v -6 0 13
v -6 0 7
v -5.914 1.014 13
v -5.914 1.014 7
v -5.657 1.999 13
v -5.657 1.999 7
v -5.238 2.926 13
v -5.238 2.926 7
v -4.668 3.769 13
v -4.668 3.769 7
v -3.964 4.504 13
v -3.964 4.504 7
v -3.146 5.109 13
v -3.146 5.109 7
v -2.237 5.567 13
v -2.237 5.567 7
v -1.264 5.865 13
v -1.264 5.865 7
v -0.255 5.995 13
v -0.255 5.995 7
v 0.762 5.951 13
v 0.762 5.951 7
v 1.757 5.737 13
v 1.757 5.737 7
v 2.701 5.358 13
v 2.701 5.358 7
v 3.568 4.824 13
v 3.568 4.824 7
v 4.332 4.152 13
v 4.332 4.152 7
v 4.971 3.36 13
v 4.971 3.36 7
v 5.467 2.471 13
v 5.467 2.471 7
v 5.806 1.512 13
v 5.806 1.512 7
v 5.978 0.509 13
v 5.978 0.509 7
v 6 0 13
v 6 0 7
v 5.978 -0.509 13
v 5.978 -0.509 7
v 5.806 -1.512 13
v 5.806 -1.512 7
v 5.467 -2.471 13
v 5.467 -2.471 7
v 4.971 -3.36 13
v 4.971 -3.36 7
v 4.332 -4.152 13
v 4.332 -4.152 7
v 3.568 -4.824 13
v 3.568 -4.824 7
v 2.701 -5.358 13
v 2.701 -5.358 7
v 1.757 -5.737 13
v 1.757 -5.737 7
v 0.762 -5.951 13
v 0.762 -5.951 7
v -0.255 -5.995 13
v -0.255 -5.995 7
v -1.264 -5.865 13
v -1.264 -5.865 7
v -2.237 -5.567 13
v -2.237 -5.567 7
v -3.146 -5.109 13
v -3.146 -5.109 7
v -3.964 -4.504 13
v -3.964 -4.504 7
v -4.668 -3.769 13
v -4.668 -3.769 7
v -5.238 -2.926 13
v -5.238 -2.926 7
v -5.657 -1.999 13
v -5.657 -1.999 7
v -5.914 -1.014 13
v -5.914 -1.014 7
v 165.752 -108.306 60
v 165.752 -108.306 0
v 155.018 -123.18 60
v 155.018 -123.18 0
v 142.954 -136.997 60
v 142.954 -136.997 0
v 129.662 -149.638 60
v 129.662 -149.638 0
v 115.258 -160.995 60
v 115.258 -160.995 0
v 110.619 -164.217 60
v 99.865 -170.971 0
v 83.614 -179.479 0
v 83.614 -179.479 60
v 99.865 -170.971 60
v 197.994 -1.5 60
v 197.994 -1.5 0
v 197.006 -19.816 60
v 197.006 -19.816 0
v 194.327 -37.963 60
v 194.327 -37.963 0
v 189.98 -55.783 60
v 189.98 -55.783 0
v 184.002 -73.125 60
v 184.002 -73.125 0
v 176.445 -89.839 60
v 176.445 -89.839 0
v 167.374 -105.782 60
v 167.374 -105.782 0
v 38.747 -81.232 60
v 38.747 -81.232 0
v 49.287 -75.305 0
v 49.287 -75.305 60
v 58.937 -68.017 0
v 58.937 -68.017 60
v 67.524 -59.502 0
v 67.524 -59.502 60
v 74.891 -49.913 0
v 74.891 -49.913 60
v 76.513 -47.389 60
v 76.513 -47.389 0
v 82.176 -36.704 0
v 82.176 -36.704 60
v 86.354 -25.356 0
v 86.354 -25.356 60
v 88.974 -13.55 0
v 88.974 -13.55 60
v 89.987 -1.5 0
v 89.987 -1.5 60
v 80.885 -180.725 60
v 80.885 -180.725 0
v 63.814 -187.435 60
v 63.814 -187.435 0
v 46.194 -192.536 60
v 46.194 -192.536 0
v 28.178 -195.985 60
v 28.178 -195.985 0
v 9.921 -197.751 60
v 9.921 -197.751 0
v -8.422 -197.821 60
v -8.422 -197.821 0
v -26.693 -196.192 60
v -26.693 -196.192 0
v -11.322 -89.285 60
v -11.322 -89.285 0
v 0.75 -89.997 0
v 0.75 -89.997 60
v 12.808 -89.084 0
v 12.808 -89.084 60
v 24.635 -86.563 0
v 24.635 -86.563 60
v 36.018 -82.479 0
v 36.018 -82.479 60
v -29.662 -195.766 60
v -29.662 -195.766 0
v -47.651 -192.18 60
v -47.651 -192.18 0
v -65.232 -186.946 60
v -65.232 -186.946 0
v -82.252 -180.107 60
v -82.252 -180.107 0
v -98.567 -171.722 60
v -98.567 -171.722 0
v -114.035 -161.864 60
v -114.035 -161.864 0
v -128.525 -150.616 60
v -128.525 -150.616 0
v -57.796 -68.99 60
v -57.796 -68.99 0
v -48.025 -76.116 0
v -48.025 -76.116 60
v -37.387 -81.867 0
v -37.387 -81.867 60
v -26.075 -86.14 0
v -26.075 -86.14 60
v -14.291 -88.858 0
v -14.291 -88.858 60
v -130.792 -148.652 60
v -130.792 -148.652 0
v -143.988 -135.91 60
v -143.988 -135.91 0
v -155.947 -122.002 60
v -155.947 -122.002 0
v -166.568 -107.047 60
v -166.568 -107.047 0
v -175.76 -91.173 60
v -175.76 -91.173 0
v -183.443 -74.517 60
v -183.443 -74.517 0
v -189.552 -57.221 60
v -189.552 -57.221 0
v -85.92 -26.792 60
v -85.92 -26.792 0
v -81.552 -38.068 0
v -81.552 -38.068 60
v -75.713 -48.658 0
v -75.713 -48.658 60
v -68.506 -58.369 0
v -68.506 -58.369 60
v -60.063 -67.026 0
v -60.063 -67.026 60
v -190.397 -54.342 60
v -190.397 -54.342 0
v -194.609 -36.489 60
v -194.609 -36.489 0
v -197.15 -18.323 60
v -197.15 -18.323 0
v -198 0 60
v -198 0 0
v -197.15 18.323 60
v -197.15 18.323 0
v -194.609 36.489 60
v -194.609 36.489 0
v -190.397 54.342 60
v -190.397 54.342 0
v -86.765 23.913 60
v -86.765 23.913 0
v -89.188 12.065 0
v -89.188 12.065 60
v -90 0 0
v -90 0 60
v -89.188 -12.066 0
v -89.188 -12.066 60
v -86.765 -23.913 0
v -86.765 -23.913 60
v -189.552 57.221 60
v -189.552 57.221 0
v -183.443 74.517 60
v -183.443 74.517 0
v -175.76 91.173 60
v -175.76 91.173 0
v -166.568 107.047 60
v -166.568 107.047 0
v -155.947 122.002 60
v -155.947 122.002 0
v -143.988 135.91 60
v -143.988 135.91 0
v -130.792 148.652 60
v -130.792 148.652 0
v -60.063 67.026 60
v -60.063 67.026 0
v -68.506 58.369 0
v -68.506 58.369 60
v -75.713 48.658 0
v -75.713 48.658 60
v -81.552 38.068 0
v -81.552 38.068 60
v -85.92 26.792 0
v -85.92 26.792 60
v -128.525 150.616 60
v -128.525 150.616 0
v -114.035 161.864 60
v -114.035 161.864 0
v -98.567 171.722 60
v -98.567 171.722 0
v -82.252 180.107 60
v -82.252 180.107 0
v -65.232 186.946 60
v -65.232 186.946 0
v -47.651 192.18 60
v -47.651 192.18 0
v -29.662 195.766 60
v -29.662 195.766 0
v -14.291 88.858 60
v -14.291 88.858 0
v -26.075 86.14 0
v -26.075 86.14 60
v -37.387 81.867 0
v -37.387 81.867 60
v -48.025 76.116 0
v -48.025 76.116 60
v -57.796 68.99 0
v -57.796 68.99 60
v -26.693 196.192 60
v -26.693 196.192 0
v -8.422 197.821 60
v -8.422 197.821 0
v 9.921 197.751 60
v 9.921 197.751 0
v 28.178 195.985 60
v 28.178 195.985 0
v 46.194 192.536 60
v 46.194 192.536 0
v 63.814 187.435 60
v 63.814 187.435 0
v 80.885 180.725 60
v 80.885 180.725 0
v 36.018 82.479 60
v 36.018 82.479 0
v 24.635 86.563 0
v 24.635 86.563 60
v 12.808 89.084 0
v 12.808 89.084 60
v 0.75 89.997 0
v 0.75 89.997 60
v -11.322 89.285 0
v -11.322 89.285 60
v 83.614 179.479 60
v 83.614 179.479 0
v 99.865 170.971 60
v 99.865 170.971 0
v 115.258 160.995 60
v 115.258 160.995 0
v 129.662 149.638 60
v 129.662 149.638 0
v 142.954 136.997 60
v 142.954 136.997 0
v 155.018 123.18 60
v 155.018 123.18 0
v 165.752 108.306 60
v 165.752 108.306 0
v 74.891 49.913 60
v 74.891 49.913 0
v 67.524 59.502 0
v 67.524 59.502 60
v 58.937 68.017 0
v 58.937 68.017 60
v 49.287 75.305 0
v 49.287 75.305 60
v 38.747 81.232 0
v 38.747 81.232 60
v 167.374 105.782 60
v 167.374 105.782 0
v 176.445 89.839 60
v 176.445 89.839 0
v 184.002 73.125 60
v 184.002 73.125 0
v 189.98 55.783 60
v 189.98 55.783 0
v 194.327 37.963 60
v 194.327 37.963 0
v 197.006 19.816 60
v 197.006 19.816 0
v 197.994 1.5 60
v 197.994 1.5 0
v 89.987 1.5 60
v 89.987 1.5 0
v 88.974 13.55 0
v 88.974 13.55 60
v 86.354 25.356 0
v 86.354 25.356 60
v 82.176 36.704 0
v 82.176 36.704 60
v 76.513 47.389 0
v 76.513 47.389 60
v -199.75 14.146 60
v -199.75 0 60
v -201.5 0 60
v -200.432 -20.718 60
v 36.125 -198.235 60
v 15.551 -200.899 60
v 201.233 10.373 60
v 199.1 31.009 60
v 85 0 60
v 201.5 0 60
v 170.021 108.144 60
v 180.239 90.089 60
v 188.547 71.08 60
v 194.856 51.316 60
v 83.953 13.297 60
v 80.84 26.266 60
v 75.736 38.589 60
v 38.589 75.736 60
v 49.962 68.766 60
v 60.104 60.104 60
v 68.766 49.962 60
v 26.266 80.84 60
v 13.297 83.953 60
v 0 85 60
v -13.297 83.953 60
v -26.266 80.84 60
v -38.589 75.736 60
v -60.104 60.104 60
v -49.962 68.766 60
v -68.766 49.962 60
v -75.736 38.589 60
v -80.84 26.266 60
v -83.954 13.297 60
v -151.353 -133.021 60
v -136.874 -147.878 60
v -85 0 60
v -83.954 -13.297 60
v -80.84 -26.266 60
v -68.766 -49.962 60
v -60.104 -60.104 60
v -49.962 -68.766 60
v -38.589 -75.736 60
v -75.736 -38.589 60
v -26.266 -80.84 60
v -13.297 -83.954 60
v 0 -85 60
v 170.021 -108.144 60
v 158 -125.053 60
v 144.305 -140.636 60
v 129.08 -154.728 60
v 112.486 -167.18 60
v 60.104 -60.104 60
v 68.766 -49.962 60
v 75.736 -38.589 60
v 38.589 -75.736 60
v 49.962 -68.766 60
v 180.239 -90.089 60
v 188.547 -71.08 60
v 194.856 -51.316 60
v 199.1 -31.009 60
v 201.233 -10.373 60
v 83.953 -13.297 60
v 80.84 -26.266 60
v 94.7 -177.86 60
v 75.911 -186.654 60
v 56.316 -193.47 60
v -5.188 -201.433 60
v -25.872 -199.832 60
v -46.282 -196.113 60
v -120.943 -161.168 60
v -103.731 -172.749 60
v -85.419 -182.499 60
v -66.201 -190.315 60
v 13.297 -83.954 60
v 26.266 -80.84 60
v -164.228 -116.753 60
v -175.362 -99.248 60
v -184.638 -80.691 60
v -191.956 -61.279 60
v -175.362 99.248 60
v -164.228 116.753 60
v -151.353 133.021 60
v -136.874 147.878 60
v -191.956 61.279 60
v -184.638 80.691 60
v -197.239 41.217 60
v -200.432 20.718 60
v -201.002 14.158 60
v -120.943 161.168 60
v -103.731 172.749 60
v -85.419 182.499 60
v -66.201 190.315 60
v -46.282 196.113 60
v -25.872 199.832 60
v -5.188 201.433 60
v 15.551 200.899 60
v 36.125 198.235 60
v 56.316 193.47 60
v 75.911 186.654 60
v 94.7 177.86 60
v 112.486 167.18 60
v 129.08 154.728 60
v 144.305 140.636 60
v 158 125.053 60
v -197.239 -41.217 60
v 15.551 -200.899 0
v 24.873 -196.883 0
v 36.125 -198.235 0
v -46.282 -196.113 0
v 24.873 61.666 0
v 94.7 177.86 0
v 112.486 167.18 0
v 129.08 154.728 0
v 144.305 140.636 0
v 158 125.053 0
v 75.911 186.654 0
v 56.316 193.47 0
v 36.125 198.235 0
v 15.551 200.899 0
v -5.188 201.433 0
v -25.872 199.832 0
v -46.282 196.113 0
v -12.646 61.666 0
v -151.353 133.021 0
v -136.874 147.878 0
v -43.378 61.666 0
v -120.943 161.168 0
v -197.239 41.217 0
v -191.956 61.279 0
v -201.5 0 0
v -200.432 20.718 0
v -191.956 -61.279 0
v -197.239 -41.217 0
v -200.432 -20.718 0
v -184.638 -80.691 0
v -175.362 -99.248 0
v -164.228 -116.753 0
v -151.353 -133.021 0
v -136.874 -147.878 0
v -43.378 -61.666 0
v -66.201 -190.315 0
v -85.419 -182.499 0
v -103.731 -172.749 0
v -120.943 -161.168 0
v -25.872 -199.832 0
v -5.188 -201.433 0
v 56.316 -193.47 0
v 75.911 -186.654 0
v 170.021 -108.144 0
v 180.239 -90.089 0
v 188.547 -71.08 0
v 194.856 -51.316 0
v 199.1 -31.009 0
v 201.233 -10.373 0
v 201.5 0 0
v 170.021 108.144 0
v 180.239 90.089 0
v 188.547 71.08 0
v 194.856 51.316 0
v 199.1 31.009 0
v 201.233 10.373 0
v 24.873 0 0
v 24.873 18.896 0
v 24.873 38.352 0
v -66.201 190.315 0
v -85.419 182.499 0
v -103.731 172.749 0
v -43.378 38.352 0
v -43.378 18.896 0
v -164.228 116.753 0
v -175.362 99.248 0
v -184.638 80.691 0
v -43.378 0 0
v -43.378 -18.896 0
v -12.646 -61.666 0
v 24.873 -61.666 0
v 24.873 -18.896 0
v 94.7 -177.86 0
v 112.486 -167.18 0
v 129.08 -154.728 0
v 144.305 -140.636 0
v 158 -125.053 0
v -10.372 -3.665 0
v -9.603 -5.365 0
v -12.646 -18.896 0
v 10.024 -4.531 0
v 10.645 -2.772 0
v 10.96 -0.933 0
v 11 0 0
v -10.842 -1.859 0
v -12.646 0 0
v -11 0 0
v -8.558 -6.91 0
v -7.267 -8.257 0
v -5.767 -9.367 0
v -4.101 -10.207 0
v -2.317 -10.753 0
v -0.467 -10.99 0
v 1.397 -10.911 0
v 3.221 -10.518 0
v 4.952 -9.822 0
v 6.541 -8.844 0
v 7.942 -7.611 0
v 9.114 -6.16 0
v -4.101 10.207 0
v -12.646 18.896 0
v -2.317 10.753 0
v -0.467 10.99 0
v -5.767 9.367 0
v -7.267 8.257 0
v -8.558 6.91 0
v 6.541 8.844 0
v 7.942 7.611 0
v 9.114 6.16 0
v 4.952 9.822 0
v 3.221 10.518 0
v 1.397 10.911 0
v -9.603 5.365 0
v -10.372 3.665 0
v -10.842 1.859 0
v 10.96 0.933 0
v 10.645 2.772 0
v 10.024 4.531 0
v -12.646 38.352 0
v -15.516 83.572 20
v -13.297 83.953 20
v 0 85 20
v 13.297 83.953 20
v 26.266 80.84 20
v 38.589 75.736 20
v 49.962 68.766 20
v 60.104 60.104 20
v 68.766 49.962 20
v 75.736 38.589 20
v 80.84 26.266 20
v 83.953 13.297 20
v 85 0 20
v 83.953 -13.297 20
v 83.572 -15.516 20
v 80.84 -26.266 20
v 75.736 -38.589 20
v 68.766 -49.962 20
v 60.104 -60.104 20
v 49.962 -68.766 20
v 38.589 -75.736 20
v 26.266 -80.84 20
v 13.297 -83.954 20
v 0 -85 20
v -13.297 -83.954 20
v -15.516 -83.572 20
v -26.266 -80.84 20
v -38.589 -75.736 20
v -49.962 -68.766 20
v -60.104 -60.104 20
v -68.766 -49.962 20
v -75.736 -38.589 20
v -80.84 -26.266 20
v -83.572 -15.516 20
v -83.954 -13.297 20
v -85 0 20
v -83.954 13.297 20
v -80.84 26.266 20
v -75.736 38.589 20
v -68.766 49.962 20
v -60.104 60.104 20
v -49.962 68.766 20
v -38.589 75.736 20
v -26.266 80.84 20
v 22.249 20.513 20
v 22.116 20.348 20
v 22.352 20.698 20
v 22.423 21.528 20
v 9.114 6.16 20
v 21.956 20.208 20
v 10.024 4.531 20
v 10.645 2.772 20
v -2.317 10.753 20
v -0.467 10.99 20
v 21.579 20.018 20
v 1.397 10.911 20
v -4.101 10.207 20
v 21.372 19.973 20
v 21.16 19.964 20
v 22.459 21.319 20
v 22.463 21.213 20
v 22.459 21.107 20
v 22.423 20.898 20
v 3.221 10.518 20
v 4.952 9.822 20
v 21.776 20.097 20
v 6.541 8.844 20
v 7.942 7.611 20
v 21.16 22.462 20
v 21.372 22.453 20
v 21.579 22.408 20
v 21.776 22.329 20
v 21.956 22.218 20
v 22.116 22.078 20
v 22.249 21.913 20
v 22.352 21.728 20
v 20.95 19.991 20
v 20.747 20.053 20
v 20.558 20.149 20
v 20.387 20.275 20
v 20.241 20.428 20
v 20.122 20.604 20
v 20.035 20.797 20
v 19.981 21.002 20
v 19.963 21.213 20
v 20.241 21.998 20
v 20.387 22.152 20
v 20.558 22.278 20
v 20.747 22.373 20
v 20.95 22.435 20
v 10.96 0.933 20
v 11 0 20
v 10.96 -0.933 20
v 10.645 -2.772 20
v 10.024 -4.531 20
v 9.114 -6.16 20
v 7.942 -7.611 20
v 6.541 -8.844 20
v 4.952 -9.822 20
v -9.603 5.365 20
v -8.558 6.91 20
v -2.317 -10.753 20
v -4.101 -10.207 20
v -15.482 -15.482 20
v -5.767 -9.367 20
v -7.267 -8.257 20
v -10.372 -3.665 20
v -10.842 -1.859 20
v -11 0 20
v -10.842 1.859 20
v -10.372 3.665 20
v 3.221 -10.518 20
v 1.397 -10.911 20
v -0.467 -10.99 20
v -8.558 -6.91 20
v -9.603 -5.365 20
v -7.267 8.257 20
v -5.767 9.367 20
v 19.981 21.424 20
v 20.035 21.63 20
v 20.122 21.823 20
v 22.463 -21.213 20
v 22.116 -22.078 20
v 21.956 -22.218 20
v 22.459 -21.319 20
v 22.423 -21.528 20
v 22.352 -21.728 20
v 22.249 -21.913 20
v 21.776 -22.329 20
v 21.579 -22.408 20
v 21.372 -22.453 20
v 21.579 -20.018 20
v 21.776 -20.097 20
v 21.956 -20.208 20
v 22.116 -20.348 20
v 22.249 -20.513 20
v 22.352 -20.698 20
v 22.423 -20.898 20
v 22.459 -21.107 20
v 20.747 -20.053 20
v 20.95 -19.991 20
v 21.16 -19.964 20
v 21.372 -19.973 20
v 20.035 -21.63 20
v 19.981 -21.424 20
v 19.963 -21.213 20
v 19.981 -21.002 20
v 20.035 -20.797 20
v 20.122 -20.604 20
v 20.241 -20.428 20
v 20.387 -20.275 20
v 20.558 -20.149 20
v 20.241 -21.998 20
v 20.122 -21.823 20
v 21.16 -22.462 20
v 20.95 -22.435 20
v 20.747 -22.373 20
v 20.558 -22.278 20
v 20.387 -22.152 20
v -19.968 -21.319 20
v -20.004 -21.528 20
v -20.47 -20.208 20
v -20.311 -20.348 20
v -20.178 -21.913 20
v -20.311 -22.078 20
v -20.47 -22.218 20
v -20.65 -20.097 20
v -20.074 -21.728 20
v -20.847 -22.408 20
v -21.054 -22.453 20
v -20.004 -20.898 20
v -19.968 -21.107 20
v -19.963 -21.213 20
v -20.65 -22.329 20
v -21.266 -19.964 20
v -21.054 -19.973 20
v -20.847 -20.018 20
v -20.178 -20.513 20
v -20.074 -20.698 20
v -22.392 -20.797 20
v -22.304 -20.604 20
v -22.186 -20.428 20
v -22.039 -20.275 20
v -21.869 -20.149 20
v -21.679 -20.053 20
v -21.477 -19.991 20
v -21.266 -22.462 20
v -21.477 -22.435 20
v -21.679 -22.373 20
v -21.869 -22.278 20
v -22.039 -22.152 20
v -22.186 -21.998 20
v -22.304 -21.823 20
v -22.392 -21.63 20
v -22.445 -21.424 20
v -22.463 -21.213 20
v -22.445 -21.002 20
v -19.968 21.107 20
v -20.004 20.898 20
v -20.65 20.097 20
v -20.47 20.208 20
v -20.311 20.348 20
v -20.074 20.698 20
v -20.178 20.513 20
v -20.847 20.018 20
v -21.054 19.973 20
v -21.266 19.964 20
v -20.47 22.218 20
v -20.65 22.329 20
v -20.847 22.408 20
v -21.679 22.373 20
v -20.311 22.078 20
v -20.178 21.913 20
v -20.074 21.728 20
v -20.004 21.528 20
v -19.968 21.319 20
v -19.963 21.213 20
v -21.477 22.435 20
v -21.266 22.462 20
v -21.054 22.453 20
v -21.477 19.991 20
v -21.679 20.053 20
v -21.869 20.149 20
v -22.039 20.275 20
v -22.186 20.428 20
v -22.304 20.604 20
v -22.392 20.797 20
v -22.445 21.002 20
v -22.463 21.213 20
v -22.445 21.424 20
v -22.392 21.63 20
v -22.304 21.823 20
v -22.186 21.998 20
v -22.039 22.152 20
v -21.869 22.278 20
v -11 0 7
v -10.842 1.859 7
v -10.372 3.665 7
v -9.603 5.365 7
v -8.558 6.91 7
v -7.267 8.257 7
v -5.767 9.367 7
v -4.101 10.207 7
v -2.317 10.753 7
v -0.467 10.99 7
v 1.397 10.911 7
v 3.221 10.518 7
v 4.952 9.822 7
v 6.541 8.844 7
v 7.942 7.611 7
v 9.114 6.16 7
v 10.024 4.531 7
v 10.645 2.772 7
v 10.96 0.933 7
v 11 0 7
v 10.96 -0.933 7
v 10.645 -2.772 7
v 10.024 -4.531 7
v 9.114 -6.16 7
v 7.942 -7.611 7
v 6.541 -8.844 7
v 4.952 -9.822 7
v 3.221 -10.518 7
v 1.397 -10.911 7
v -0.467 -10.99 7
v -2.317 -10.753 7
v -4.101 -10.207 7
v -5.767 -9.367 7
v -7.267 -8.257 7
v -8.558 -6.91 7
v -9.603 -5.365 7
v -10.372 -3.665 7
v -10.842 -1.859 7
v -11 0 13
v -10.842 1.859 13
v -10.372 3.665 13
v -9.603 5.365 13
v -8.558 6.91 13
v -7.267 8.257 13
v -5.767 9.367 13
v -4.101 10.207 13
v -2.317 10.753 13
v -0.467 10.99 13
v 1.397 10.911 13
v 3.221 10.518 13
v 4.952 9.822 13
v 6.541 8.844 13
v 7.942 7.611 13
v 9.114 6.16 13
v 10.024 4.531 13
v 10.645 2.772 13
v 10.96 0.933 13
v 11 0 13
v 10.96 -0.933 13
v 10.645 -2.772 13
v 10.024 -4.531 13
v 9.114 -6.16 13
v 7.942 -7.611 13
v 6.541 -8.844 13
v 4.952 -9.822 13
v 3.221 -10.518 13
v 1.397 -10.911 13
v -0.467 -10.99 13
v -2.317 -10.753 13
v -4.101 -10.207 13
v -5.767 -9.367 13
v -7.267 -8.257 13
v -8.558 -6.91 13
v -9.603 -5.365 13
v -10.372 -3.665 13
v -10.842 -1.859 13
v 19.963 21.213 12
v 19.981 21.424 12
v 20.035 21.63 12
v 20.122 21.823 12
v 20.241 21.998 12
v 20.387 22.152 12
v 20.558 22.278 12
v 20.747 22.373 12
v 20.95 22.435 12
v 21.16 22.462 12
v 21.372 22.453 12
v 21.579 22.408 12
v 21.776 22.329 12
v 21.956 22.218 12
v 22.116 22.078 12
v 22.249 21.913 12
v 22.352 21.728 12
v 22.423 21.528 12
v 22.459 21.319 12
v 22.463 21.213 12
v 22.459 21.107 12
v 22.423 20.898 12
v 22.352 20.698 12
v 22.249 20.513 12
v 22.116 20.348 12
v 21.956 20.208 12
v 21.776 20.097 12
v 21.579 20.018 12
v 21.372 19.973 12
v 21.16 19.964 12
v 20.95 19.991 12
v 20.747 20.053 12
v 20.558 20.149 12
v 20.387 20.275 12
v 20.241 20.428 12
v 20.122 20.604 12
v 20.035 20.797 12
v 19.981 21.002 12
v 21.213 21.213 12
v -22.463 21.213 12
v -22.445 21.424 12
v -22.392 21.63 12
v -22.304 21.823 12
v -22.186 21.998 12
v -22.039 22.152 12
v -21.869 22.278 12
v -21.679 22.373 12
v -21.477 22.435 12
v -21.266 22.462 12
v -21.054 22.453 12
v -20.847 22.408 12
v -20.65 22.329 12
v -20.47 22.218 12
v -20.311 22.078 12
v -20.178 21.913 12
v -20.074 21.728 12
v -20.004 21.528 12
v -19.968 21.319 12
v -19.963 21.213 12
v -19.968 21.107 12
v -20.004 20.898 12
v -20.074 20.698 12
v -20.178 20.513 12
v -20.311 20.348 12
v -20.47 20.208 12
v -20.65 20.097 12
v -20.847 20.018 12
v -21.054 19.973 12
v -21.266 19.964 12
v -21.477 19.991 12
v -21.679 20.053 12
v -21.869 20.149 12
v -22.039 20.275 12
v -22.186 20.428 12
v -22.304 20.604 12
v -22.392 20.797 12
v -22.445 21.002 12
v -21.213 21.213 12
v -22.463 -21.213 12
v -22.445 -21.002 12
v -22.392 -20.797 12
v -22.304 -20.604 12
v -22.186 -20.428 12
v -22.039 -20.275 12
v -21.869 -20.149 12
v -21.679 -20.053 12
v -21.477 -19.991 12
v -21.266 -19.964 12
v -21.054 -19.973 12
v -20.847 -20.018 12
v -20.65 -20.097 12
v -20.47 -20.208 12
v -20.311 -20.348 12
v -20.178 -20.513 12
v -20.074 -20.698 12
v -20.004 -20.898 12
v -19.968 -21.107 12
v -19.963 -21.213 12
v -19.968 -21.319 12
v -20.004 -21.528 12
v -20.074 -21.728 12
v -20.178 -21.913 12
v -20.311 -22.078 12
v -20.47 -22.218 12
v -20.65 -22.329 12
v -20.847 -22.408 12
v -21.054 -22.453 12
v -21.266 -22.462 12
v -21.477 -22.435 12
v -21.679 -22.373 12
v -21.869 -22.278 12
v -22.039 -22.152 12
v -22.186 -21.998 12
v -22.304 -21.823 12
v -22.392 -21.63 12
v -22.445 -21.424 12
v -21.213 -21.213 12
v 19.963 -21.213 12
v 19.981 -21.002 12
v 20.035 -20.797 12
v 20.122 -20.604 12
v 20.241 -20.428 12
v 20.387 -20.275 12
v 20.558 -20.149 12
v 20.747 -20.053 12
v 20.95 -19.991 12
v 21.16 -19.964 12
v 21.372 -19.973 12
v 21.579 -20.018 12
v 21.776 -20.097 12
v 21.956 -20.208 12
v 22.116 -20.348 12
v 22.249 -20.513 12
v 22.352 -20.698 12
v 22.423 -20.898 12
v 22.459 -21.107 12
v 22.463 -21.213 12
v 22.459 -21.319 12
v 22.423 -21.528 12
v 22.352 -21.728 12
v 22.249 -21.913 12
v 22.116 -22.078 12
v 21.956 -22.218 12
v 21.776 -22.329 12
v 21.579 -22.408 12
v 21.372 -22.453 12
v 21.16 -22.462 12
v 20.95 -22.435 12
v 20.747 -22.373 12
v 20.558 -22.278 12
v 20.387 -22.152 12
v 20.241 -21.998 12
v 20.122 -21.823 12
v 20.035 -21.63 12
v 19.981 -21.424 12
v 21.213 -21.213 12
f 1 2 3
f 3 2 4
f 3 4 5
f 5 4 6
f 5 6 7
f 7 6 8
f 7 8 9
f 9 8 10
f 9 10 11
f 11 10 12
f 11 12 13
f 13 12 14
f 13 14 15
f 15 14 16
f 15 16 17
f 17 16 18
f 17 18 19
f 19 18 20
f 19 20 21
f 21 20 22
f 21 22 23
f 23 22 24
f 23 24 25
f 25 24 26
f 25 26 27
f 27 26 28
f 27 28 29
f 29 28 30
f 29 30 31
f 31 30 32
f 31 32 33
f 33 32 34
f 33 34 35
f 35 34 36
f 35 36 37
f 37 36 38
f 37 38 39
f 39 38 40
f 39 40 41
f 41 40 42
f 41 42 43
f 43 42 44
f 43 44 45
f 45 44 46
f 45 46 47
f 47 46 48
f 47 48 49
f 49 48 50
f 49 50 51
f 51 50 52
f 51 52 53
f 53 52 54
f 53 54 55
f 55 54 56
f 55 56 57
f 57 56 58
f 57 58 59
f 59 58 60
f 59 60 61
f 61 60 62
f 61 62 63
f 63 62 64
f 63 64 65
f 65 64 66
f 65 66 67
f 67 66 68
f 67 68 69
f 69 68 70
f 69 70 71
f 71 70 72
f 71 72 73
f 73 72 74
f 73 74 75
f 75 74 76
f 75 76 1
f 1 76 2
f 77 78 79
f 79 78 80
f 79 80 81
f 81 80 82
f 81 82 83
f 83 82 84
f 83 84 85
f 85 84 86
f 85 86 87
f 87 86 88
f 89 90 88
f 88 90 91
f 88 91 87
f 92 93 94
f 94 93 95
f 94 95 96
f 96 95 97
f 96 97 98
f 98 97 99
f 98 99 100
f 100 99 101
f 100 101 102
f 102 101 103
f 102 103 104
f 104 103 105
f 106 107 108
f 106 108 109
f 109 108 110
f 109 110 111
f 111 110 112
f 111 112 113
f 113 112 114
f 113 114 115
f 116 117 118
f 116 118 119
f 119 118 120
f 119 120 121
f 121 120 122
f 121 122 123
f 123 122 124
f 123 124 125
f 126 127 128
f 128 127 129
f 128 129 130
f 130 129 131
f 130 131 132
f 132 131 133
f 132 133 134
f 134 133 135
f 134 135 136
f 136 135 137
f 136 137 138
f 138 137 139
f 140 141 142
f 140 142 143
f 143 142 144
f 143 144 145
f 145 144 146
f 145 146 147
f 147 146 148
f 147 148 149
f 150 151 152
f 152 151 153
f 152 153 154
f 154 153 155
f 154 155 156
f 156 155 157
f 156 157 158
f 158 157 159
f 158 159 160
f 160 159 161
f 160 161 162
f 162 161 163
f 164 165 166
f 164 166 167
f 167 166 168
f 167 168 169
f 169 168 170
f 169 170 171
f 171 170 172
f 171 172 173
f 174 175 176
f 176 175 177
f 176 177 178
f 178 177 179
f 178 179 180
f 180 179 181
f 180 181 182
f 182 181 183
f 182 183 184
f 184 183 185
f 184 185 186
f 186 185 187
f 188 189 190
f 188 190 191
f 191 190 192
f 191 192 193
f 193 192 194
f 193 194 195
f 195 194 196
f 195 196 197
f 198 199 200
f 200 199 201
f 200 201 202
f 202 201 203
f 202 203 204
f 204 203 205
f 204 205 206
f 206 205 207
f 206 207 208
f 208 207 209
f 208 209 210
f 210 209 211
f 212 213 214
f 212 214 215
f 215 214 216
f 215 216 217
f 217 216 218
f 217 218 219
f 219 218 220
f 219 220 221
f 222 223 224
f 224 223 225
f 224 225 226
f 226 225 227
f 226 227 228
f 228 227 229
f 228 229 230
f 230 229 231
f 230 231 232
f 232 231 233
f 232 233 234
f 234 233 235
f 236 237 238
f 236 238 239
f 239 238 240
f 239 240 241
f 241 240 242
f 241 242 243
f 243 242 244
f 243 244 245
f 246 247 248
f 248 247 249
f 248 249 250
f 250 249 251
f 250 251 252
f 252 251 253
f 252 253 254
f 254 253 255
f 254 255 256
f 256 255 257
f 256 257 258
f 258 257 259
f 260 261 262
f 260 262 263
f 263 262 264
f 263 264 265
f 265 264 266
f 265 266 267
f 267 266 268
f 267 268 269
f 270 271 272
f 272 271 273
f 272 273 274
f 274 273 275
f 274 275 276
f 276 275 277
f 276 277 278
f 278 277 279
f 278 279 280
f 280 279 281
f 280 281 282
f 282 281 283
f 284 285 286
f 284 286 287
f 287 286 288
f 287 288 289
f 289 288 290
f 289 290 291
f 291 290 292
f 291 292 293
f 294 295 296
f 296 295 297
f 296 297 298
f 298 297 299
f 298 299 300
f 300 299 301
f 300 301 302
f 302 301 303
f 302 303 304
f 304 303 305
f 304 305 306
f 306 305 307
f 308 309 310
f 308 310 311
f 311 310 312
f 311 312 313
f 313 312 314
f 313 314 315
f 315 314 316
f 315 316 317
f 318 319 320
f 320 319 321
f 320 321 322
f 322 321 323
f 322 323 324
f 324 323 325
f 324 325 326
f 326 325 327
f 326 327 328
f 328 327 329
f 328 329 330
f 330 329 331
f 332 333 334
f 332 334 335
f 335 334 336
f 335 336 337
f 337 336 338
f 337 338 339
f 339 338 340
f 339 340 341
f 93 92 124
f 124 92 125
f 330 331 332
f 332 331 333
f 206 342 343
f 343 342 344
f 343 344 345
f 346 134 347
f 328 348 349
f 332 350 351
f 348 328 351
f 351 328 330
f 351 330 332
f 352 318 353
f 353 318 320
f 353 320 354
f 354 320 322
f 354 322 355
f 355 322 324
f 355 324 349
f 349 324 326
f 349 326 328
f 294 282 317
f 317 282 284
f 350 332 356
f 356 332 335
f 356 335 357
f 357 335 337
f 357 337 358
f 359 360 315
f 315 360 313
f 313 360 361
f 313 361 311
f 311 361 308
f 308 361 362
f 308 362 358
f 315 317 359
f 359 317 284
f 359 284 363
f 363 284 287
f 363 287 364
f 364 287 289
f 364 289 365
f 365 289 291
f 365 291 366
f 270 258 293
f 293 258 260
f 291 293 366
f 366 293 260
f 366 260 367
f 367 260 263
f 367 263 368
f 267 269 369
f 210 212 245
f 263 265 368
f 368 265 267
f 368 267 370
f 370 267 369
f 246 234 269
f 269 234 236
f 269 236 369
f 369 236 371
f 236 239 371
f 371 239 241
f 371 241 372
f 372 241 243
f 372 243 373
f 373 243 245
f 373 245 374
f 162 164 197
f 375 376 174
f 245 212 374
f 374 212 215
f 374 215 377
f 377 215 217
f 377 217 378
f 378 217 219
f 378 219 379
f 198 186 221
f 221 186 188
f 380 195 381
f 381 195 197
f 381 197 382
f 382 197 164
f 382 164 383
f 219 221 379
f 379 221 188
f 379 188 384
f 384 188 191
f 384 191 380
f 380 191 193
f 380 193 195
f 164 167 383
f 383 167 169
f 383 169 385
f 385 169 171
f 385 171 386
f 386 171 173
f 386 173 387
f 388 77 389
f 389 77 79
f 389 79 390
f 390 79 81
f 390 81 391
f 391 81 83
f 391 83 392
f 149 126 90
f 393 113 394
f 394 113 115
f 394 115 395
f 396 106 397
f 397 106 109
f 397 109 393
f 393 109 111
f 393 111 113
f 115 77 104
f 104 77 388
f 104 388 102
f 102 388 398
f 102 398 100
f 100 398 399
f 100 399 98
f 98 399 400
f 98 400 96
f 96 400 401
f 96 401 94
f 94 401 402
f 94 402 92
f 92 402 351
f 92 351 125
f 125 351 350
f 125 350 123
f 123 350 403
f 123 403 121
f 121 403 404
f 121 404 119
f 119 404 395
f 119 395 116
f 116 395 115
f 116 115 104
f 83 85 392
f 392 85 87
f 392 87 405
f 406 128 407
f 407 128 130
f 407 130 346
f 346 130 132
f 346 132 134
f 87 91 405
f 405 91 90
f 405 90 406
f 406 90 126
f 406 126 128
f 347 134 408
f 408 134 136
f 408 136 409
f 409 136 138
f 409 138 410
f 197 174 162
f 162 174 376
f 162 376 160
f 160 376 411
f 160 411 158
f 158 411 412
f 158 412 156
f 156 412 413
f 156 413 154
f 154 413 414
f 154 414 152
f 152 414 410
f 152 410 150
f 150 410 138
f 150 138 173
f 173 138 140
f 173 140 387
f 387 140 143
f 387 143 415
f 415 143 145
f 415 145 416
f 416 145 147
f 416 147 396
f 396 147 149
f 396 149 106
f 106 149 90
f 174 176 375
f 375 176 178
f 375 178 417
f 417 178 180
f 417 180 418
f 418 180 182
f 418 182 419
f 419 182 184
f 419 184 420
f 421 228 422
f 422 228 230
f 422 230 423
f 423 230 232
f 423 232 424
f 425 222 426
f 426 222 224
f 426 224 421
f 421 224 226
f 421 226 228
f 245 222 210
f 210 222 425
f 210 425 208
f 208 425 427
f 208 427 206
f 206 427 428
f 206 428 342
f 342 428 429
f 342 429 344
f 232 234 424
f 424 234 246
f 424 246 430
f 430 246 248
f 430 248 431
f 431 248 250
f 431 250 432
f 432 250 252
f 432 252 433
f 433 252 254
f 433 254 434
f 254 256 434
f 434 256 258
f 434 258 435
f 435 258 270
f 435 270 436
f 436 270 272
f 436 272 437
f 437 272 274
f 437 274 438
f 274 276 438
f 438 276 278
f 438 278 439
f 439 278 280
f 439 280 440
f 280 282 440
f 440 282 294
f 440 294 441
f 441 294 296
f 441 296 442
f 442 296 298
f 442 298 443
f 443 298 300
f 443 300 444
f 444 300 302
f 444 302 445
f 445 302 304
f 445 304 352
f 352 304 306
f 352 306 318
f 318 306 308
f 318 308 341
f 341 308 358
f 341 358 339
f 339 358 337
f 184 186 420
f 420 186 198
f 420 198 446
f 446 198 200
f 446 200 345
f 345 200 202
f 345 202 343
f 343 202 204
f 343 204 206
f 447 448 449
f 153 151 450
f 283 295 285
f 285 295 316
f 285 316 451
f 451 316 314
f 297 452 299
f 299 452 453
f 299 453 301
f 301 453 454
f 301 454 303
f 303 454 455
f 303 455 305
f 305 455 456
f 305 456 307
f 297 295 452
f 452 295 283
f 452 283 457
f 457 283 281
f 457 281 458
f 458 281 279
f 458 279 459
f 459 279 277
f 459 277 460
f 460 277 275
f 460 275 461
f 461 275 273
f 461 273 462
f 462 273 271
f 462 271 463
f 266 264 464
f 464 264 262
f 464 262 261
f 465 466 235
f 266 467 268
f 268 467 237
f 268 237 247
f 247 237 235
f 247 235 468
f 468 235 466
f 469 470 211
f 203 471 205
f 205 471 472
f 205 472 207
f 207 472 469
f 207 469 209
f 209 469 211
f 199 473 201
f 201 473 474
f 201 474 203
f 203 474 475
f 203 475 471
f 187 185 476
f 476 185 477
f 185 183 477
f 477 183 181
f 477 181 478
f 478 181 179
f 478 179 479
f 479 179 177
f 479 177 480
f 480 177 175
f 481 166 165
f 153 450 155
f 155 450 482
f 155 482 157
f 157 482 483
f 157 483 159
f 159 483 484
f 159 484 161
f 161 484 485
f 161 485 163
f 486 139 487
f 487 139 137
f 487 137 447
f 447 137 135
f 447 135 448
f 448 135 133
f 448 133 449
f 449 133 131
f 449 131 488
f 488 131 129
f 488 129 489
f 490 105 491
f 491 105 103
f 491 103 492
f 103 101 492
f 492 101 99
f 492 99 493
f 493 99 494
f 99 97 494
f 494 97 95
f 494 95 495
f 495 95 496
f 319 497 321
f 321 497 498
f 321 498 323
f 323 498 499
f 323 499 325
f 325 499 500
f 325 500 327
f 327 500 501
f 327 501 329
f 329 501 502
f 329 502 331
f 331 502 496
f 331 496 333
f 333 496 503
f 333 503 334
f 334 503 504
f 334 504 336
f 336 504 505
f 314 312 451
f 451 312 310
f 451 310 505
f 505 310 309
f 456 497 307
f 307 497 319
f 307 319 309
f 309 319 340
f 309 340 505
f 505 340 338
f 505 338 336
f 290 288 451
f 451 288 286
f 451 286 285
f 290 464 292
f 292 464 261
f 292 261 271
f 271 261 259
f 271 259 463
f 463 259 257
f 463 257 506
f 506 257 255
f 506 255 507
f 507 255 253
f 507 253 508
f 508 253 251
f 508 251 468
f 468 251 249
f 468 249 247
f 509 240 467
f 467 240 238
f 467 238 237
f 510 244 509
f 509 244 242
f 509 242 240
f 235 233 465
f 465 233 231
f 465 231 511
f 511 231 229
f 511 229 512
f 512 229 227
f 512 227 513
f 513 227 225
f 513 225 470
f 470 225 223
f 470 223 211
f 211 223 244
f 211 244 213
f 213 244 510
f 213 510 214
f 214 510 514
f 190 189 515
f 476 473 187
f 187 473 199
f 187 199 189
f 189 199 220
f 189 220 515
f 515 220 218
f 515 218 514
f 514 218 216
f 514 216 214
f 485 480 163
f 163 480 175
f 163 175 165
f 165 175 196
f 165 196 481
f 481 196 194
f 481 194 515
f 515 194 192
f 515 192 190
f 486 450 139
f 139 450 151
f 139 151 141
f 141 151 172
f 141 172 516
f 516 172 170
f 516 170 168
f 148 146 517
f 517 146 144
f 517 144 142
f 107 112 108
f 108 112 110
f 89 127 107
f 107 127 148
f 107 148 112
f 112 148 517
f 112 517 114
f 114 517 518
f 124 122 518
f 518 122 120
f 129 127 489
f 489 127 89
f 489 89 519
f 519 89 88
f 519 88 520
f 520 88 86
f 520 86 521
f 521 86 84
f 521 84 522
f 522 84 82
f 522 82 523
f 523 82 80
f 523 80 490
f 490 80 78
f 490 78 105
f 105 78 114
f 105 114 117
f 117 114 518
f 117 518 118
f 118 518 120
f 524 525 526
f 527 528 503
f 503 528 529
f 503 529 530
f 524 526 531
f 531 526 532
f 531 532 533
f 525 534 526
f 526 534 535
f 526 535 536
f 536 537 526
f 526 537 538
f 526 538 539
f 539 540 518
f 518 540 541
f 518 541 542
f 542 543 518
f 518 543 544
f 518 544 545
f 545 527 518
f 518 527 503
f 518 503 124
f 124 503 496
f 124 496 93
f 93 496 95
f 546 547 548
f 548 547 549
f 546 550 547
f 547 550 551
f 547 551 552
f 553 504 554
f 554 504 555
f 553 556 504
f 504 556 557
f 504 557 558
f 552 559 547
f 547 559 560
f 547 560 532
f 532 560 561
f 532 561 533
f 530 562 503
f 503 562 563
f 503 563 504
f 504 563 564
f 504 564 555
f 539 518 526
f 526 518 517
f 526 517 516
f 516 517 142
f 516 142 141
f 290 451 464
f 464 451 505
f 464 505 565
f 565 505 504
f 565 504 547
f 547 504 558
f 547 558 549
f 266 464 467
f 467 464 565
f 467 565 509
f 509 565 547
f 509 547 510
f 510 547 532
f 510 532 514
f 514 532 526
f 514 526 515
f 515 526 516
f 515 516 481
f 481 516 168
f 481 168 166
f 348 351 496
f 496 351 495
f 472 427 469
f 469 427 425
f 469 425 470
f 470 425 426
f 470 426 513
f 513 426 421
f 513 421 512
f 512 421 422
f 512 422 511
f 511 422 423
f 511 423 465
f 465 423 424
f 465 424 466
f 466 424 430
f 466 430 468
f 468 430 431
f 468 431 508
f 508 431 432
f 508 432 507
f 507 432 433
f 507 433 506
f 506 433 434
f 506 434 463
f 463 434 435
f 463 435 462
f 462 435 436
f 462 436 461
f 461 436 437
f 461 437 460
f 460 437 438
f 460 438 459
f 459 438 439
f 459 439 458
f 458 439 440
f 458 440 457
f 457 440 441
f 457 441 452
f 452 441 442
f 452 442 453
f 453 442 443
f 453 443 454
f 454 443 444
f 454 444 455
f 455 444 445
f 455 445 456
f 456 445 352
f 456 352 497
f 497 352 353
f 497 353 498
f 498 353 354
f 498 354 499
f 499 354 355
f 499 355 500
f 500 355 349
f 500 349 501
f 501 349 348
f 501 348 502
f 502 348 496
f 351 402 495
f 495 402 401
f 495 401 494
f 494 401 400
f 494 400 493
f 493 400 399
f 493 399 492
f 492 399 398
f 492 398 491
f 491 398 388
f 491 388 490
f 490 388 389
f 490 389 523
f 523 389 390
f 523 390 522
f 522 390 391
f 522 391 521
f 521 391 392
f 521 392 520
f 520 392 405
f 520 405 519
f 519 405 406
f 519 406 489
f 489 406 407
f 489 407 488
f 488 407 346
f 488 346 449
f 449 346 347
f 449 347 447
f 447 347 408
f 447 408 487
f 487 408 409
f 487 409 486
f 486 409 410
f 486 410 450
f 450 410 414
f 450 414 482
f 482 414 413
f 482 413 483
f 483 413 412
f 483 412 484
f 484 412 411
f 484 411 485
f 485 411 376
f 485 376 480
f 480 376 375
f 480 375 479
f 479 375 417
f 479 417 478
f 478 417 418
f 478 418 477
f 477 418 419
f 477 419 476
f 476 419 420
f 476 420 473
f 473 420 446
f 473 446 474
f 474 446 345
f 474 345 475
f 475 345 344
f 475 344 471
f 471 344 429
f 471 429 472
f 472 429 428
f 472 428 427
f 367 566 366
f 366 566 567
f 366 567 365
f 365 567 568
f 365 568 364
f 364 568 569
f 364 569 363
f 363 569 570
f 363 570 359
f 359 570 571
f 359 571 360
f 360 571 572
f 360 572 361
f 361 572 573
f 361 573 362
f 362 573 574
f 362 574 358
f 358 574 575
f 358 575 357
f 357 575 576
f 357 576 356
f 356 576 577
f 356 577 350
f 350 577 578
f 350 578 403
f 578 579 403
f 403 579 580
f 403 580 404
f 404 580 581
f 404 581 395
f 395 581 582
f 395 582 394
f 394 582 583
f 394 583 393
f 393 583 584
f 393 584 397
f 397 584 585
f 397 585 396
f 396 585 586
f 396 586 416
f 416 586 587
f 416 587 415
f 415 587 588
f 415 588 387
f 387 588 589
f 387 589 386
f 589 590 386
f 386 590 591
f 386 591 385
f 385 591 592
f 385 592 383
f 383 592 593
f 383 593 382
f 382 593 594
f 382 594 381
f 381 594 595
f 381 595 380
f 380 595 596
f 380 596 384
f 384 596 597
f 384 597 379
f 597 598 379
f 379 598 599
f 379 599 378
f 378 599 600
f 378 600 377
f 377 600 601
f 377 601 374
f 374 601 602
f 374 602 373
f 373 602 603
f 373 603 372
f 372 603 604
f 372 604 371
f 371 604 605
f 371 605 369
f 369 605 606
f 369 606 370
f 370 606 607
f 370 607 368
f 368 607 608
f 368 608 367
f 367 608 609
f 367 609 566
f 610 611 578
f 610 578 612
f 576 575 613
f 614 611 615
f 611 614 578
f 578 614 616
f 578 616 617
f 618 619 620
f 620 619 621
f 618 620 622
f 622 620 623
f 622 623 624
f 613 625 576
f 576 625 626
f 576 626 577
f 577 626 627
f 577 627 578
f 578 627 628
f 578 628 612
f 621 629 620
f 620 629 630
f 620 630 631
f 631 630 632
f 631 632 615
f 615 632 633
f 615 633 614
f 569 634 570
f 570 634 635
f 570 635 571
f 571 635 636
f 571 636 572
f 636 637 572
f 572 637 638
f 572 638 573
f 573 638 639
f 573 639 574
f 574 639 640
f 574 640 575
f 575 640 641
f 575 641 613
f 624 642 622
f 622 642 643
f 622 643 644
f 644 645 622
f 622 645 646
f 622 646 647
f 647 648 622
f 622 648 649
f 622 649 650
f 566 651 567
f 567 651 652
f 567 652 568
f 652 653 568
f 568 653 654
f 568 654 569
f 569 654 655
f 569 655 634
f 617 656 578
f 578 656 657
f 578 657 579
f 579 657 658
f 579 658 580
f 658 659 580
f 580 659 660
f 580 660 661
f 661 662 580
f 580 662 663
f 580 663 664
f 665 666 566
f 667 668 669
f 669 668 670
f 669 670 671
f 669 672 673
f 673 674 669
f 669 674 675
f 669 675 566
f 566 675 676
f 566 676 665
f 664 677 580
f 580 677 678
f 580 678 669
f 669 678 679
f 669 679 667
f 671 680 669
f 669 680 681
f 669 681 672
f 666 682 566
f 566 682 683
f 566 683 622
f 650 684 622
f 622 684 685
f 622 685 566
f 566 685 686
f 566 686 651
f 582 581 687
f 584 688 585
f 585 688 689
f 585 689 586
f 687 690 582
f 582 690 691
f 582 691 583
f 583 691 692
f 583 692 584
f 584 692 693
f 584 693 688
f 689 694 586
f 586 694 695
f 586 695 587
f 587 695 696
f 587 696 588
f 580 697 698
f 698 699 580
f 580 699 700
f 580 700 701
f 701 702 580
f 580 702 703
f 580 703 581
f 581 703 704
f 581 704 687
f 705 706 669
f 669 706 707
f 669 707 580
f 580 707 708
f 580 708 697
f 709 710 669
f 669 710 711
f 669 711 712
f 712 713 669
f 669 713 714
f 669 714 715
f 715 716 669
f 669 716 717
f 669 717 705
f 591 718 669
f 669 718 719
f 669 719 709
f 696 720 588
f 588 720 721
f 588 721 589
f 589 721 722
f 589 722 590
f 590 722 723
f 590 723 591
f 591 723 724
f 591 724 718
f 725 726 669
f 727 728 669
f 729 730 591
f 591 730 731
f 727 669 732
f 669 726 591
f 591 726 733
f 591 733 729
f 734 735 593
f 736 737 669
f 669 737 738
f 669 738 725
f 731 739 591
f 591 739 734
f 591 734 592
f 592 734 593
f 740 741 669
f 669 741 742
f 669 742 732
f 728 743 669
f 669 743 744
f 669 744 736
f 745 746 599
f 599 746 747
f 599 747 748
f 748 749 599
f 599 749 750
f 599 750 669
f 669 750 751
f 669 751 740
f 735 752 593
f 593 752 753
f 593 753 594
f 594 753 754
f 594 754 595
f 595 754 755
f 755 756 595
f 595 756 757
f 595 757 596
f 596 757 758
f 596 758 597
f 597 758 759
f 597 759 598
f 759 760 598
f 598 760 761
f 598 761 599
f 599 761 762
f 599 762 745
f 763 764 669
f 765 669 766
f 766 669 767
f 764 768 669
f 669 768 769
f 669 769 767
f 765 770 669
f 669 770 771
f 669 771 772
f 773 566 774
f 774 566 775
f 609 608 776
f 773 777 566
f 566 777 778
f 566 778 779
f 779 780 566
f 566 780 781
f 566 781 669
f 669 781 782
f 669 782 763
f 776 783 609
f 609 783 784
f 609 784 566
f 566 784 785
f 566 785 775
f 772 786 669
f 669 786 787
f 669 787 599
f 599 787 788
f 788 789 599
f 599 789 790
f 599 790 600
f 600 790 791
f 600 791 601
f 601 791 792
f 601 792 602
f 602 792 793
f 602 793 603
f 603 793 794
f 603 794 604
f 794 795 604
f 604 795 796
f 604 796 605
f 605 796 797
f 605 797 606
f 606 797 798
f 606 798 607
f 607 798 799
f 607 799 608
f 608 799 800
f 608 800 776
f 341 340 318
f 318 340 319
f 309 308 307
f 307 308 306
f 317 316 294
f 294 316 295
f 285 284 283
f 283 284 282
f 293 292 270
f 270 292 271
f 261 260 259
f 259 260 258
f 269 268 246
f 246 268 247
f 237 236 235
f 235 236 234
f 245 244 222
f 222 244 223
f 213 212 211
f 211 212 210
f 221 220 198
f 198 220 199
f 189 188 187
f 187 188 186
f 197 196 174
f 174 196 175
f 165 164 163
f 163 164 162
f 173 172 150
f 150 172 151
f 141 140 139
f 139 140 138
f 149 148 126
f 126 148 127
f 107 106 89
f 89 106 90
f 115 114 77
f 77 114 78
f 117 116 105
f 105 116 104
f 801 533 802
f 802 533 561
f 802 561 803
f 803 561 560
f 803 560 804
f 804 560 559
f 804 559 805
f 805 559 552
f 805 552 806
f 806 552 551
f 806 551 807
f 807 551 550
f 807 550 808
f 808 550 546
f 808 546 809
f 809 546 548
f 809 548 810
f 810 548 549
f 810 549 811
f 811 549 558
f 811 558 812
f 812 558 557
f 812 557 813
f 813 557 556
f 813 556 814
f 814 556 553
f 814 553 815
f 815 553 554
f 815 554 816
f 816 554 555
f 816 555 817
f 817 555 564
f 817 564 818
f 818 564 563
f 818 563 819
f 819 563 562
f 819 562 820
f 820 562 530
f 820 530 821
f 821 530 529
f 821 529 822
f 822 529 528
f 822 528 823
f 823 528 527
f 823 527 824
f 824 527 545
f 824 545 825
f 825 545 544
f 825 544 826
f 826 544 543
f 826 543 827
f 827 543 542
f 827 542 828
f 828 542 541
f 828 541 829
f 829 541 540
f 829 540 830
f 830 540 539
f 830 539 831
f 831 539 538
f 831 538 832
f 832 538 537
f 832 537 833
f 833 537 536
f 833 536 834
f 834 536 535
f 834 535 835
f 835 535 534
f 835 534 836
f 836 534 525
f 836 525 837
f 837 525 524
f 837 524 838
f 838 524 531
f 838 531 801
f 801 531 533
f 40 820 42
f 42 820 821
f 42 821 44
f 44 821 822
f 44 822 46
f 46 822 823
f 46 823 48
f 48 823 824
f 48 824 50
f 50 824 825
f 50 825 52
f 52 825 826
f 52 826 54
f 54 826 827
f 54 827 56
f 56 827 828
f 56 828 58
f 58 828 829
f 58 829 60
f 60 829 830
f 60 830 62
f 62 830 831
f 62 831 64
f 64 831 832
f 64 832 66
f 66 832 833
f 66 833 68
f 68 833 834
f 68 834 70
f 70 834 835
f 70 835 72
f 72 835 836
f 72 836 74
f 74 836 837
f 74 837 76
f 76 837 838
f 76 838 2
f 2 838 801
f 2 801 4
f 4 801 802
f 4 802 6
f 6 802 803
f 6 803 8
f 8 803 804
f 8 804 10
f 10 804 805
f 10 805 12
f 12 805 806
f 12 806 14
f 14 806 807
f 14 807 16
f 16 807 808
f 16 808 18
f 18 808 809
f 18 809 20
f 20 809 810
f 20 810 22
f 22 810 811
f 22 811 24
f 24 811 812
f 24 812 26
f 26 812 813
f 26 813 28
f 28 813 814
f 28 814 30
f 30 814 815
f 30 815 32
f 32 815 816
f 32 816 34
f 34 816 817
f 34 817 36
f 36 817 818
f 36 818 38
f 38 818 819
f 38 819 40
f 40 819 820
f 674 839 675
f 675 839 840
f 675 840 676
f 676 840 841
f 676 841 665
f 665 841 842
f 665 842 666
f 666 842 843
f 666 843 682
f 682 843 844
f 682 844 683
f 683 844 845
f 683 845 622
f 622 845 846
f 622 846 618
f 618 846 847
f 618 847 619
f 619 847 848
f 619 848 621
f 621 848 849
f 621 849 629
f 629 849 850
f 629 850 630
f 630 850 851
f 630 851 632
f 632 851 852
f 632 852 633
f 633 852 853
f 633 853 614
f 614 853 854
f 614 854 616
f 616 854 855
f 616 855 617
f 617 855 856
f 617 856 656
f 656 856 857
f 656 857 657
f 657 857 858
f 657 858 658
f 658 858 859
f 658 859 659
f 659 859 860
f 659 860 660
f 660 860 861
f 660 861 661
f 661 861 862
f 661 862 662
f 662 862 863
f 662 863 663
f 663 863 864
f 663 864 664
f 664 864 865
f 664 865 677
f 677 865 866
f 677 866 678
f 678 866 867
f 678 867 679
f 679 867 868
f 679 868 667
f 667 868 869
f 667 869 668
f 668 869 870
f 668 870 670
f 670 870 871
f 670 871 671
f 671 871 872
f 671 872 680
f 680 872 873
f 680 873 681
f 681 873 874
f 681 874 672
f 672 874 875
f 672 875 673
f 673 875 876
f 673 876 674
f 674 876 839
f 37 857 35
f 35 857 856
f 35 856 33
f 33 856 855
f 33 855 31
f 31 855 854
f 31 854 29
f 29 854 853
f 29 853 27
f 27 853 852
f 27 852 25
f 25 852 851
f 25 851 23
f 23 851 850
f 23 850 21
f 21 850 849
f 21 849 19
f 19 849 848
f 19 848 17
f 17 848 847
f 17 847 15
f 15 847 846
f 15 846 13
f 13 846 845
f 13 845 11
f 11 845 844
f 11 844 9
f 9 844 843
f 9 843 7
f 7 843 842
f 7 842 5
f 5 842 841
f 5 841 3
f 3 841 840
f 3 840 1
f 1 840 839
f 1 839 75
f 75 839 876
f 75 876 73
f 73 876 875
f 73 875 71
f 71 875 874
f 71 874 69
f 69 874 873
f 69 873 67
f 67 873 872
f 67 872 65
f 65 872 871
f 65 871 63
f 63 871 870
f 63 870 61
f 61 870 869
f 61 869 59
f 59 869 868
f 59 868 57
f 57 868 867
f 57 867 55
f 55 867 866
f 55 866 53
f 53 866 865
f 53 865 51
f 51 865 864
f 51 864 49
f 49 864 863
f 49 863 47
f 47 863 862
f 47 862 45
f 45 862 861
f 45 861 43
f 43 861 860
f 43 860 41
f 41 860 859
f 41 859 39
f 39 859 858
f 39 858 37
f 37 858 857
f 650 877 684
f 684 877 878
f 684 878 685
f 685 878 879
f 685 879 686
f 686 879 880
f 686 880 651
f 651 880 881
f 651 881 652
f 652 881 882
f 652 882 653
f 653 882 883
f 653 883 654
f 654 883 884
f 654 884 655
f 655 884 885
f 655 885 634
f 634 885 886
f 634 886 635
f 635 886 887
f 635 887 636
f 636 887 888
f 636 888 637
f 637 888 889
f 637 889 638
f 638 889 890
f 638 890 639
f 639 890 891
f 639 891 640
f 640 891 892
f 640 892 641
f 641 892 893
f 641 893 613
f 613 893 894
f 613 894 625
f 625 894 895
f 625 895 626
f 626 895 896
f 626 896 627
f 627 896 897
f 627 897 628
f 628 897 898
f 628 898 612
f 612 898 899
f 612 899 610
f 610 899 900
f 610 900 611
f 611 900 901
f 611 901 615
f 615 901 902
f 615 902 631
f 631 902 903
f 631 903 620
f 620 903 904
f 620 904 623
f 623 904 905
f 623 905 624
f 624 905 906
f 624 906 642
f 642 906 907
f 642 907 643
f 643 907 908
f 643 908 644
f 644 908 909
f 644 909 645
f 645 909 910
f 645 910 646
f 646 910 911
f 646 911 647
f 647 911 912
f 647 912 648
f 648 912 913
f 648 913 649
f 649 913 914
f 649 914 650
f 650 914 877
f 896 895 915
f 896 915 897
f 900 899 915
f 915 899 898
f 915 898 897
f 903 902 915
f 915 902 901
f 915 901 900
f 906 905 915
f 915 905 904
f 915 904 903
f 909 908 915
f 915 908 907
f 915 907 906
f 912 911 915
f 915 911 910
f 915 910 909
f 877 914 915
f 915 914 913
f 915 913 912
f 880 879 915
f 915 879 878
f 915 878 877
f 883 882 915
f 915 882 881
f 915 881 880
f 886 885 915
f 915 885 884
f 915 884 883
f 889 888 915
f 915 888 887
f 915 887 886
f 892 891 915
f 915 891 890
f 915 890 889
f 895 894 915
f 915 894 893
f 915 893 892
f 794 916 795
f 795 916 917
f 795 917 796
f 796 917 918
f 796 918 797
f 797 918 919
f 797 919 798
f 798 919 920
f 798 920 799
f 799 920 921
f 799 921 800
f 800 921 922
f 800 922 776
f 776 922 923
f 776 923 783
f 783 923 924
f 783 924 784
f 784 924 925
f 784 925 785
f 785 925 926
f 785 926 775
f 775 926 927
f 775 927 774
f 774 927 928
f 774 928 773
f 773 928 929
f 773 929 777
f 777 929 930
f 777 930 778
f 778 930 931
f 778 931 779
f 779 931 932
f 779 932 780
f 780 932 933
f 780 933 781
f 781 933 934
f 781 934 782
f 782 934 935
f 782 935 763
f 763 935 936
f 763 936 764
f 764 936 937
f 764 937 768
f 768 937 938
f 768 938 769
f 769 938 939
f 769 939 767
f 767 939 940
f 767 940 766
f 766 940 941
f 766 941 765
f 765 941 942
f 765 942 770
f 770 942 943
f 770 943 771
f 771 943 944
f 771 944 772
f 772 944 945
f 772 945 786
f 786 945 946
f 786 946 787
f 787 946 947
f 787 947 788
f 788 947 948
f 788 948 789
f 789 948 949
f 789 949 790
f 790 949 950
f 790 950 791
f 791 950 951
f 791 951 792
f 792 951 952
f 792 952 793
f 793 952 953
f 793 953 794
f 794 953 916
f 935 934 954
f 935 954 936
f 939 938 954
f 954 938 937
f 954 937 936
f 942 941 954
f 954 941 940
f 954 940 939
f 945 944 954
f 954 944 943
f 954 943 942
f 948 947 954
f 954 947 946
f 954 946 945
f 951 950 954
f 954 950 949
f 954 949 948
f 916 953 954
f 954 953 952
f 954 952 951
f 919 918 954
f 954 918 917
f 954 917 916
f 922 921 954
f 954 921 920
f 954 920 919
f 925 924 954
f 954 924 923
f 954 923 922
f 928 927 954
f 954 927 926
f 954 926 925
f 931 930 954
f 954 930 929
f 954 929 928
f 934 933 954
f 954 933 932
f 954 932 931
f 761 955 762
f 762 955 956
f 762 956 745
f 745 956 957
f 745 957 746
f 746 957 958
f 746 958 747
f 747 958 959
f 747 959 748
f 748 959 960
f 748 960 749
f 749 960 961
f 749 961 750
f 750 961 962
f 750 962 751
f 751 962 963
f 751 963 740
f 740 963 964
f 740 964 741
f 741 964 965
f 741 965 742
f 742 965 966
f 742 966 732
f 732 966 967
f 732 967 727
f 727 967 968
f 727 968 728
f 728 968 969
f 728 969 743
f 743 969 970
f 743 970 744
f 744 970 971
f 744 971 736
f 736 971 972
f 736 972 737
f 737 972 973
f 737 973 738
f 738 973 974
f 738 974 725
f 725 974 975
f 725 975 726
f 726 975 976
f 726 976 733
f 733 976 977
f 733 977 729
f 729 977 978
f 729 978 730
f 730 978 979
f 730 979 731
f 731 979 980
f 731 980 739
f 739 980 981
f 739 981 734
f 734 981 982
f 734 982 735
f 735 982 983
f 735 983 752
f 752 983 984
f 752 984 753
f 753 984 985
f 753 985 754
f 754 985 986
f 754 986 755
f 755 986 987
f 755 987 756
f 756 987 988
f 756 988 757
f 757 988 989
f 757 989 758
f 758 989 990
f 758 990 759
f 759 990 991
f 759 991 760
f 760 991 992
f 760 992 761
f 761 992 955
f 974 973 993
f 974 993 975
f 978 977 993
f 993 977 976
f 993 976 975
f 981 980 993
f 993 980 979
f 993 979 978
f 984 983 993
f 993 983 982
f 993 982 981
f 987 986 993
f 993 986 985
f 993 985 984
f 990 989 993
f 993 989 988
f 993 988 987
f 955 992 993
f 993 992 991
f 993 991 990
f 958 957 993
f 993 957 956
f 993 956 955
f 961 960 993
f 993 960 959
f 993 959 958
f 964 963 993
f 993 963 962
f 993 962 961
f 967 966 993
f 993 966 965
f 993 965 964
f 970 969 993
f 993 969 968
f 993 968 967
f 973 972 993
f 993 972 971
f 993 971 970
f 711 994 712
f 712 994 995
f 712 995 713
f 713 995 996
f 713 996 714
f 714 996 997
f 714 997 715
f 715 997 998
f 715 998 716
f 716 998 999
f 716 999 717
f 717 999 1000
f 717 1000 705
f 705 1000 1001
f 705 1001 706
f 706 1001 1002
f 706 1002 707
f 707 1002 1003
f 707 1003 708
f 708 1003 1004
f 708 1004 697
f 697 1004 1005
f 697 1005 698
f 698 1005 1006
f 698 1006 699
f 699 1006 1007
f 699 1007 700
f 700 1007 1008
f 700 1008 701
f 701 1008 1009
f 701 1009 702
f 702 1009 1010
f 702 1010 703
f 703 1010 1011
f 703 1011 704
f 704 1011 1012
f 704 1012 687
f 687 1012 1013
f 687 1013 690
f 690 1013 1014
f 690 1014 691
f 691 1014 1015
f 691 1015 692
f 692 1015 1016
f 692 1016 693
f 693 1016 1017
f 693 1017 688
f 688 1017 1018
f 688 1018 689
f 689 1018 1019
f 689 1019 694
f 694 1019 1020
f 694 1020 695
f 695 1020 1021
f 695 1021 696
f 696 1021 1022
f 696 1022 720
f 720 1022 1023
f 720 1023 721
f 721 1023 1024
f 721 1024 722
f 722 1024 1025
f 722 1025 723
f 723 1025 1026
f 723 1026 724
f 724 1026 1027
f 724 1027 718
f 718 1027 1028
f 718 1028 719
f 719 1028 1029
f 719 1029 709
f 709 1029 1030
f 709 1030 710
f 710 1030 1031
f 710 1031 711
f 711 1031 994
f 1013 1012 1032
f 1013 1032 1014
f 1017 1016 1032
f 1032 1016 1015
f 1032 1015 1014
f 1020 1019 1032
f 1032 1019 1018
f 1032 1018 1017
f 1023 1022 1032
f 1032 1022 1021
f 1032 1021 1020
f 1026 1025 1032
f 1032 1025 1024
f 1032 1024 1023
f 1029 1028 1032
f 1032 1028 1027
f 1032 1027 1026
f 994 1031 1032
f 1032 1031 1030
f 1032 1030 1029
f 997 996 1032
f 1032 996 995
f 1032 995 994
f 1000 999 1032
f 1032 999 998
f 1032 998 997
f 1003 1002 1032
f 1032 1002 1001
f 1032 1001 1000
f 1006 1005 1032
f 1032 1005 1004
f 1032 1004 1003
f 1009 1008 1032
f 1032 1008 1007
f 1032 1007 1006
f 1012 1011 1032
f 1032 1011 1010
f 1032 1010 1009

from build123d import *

# Parameters (mm, degrees)
SKETCH1_R               = 201.5
SKETCH1_R_2             = 198
RING_DEPTH              = 60
SKETCH2_R               = 90
FLOOR_2_DEPTH           = 20
SKETCH3_R               = 90
SKETCH3_R_2             = 85
HUB_TUBE_DEPTH          = 40
SKETCH4_W               = 110
SKETCH4_H               = 3
VANES_DEPTH             = 60
SKETCH5_R               = 6
BORE_DEPTH              = 20
SKETCH6_R               = 11
BEARING_SEAT_LOW_DEPTH  = 7
SKETCH7_R               = 11
BEARING_SEAT_HIGH_DEPTH = 7
SKETCH8_R               = 1.25
GROMMET_SCREWS_DEPTH    = 8


with BuildPart() as part:
    # Sketch1 → Ring (new body)
    with BuildSketch(Plane.XY):
        Circle(SKETCH1_R)
        Circle(SKETCH1_R_2, mode=Mode.SUBTRACT)
    extrude(amount=RING_DEPTH)



with BuildPart() as body_2:
    # Sketch2 → Floor 2 (new body)
    with BuildSketch(Plane.XY):
        Circle(SKETCH2_R)
    extrude(amount=FLOOR_2_DEPTH)

    # Sketch3 → Hub_tube (add)
    with BuildSketch(Plane.XY.offset(20)):
        Circle(SKETCH3_R)
        Circle(SKETCH3_R_2, mode=Mode.SUBTRACT)
    extrude(amount=HUB_TUBE_DEPTH)


with BuildPart() as part_1:
    add(part.part)

    add(body_2.part)  # Vanes merges body 2
    # Sketch4 → Vanes (add)
    with BuildSketch(Plane.XY):
        with Locations((144, 0)):
            Rectangle(SKETCH4_W, SKETCH4_H)
        Polygon((75.682525648, 46.855152454), (168.22041426, 106.325642374), (166.598491807, 108.849402973), (74.060603196, 49.378913053), align=None)
        Polygon((38.33638415, 80.334125067), (84.03203558, 180.393644556), (81.303139594, 181.639889595), (35.607488164, 81.580370106), align=None)
        Polygon((-11.181288444, 88.307580585), (-26.835920654, 197.187939192), (-29.805384979, 196.760994677), (-14.150752769, 87.88063607), align=None)
        Polygon((-57.14898096, 68.244003218), (-129.183661694, 151.376456397), (-131.450910417, 149.411874196), (-59.416229683, 66.279421017), align=None)
        Polygon((-84.972275816, 26.513437019), (-190.516502914, 57.504018272), (-191.361700585, 54.625539351), (-85.817473487, 23.634958098), align=None)
        Polygon((-85.817473487, -23.634958098), (-191.361700585, -54.625539351), (-190.516502914, -57.504018272), (-84.972275816, -26.513437019), align=None)
        Polygon((-59.416229683, -66.279421017), (-131.450910417, -149.411874196), (-129.183661694, -151.376456397), (-57.14898096, -68.244003218), align=None)
        Polygon((-14.150752769, -87.88063607), (-29.805384979, -196.760994677), (-26.835920654, -197.187939192), (-11.181288444, -88.307580585), align=None)
        Polygon((35.607488164, -81.580370106), (81.303139594, -181.639889595), (84.03203558, -180.393644556), (38.33638415, -80.334125067), align=None)
        Polygon((74.060603196, -49.378913053), (166.598491807, -108.849402973), (168.22041426, -106.325642374), (75.682525648, -46.855152454), align=None)
    extrude(amount=VANES_DEPTH)

    # Sketch5 → Bore (cut)
    with BuildSketch(Plane.XY):
        Circle(SKETCH5_R)
    extrude(amount=BORE_DEPTH, mode=Mode.SUBTRACT)

    # Sketch6 → Bearing_seat_low (cut)
    with BuildSketch(Plane.XY):
        Circle(SKETCH6_R)
    extrude(amount=BEARING_SEAT_LOW_DEPTH, mode=Mode.SUBTRACT)

    # Sketch7 → Bearing_seat_high (cut)
    with BuildSketch(Plane.XY.offset(13)):
        Circle(SKETCH7_R)
    extrude(amount=BEARING_SEAT_HIGH_DEPTH, mode=Mode.SUBTRACT)

    # Sketch8 → Grommet_screws (cut)
    with BuildSketch(Plane.XY.offset(12)):
        with Locations((21.213203436, 21.213203436)):
            Circle(SKETCH8_R)
        with Locations((-21.213203436, 21.213203436)):
            Circle(SKETCH8_R)
        with Locations((-21.213203436, -21.213203436)):
            Circle(SKETCH8_R)
        with Locations((21.213203436, -21.213203436)):
            Circle(SKETCH8_R)
    extrude(amount=GROMMET_SCREWS_DEPTH, mode=Mode.SUBTRACT)


solid = part_1.part
